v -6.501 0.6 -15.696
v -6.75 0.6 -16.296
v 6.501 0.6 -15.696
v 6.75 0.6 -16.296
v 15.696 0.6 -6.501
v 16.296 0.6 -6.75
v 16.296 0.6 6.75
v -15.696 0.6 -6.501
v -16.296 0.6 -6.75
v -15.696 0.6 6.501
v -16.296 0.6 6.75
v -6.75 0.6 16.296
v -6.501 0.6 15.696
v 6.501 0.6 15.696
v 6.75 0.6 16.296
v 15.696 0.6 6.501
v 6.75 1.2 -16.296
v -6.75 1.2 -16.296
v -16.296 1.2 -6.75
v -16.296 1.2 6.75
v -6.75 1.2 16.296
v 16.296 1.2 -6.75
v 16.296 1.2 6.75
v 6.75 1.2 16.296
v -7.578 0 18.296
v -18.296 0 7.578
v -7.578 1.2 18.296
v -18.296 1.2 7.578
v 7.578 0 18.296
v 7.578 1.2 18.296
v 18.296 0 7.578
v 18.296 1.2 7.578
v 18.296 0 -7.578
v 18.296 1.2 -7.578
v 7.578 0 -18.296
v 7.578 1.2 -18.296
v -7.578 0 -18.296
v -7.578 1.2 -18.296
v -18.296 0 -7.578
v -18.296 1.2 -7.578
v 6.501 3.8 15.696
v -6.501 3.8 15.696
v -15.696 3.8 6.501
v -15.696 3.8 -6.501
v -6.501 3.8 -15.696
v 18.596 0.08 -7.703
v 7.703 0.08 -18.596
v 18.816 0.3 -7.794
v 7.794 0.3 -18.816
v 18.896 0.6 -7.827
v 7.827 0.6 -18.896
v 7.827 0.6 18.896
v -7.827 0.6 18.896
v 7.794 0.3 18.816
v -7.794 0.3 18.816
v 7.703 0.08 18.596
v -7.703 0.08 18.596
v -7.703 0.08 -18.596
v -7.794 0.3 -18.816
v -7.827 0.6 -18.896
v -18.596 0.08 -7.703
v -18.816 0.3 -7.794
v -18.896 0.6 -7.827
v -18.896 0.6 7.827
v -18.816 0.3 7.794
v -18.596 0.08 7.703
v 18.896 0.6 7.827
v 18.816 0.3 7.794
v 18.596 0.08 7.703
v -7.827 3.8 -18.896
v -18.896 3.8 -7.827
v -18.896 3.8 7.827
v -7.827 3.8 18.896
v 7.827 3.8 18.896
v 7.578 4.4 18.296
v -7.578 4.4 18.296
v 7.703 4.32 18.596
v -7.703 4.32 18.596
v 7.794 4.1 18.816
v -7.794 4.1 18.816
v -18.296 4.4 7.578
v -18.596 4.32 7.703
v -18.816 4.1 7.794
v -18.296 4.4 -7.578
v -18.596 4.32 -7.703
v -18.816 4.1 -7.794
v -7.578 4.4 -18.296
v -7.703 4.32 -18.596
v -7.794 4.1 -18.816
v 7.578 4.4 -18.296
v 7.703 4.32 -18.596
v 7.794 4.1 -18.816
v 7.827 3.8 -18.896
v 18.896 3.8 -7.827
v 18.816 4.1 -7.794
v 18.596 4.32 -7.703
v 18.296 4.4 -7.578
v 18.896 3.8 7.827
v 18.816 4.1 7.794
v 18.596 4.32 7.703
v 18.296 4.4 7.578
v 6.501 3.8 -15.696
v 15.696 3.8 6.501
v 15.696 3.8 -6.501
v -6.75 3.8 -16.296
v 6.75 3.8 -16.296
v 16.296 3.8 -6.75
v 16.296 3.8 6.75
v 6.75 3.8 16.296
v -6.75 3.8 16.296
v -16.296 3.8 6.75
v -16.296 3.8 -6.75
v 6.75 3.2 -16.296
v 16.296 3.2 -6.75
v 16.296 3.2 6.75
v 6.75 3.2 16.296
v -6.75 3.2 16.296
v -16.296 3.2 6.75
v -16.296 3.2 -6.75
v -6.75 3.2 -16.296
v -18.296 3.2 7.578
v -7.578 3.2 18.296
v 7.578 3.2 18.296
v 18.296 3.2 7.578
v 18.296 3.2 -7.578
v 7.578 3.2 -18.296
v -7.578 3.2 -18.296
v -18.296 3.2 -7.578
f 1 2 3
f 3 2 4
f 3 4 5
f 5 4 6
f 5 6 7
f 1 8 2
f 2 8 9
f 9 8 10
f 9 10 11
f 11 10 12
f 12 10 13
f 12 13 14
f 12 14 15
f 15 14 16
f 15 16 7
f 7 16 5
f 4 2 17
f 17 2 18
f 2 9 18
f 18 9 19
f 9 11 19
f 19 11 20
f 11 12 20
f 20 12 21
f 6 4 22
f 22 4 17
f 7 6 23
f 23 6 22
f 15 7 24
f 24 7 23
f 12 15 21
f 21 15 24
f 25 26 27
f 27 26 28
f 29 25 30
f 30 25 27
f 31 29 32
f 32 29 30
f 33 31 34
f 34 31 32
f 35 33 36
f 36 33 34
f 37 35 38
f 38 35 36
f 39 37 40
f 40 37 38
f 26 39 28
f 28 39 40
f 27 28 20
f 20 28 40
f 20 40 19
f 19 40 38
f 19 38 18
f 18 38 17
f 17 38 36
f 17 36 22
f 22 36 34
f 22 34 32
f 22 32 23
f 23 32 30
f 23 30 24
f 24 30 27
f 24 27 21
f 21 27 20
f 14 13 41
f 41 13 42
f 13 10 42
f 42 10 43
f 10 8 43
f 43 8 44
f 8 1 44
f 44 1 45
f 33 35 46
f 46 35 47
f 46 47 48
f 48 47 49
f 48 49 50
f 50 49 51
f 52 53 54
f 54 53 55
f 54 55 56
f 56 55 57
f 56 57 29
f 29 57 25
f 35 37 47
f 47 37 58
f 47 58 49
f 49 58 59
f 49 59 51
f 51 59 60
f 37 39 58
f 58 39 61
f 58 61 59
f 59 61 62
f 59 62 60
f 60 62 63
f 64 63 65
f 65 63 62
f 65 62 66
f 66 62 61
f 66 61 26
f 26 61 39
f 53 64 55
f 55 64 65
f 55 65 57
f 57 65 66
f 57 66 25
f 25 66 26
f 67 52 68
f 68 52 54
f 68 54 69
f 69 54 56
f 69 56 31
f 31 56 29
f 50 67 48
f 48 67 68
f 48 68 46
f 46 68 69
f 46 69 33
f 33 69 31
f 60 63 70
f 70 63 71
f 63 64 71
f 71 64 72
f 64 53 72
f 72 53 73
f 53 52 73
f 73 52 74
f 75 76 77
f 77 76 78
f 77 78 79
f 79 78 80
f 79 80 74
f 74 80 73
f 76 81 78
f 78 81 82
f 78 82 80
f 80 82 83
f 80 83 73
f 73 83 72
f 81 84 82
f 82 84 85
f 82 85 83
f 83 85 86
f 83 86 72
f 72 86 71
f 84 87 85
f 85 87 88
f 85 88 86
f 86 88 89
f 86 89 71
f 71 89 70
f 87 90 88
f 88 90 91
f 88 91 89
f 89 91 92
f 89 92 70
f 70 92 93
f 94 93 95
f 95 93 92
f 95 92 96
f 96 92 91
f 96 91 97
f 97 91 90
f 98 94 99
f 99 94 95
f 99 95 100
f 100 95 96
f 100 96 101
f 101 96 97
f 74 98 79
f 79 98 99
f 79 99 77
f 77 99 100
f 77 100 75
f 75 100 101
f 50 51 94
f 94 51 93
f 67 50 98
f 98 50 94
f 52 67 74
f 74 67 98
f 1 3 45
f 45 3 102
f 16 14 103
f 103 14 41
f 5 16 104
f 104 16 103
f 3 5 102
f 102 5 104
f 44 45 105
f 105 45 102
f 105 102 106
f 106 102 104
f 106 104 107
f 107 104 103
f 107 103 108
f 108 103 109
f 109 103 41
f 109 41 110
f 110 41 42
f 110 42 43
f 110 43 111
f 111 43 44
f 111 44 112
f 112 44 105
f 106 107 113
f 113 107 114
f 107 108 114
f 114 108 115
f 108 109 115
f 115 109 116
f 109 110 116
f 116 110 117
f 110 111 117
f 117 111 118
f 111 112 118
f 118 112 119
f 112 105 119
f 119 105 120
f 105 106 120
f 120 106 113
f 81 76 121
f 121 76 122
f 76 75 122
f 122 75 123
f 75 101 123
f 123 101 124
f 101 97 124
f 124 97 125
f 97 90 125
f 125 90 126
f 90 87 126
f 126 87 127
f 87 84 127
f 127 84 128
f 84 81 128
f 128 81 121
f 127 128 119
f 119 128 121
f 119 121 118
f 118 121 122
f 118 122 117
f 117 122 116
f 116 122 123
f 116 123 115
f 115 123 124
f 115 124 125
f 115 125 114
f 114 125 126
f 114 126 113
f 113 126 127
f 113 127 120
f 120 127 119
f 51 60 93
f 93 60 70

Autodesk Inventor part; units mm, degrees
ref_plane "YZ Plane" through (0, 0, 0) normal (1, 0, 0) x (0, 1, 0)
ref_plane "XZ Plane" through (0, 0, 0) normal (0, 1, 0) x (-1, 0, 0)
sketch "스케치1" plane through (0, 0, 0) normal (0, 1, 0) x (-1, 0, 0)
  line L0 (-16.2959, 6.75) -> (-6.75, 16.2959)
  line L1 (-6.75, 16.2959) -> (6.75, 16.2959)
  line L2 (6.75, 16.2959) -> (16.2959, 6.75)
  line L3 (16.2959, 6.75) -> (16.2959, -6.75)
  line L4 (16.2959, -6.75) -> (6.75, -16.2959)
  line L5 (6.75, -16.2959) -> (-6.75, -16.2959)
  line L6 (-6.75, -16.2959) -> (-16.2959, -6.75)
  line L7 (-16.2959, -6.75) -> (-16.2959, 6.75)
  line L8 (18.8959, 7.827) -> (18.8959, -7.827)
  line L9 (18.8959, -7.827) -> (7.827, -18.8959)
  line L10 (7.827, -18.8959) -> (-7.827, -18.8959)
  line L11 (-7.827, -18.8959) -> (-18.8959, -7.827)
  line L12 (-18.8959, -7.827) -> (-18.8959, 7.827)
  line L13 (-18.8959, 7.827) -> (-7.827, 18.8959)
  line L14 (-7.827, 18.8959) -> (7.827, 18.8959)
  line L15 (7.827, 18.8959) -> (18.8959, 7.827)
  point P0 (0, 0)
  point P1 (0, 0)
  point P2 (0, 0)
  dimension "d0" = 13.5
  dimension "d1" = 2.6
extrude "돌출1" add sketch "스케치1" along normal blind 4.4 contours L0 L1 L2 L3 L4 L5 L6 L7 | L8 L9 L10 L11 L12 L13 L14 L15
sketch "스케치14" plane through (0, 4.4, 0) normal (0, 1, 0) x (1, 0, 0)
  line L0 (6.75, -16.2959) -> (-6.75, -16.2959)
  line L1 (-6.75, -16.2959) -> (-16.2959, -6.75)
  line L2 (-16.2959, -6.75) -> (-16.2959, 6.75)
  line L3 (-16.2959, 6.75) -> (-6.75, 16.2959)
  line L4 (-6.75, 16.2959) -> (6.75, 16.2959)
  line L5 (6.75, 16.2959) -> (16.2959, 6.75)
  line L6 (16.2959, 6.75) -> (16.2959, -6.75)
  line L7 (16.2959, -6.75) -> (6.75, -16.2959)
  line L8 (-7.5784, 18.2959) -> (7.5784, 18.2959)
  line L9 (7.5784, 18.2959) -> (18.2959, 7.5784)
  line L10 (18.2959, 7.5784) -> (18.2959, -7.5784)
  line L11 (18.2959, -7.5784) -> (7.5784, -18.2959)
  line L12 (7.5784, -18.2959) -> (-7.5784, -18.2959)
  line L13 (-7.5784, -18.2959) -> (-18.2959, -7.5784)
  line L14 (-18.2959, -7.5784) -> (-18.2959, 7.5784)
  line L15 (-18.2959, 7.5784) -> (-7.5784, 18.2959)
  line L16 (18.8959, -7.827) -> (18.8959, 7.827) projected
  point P0 (0, 0)
  point P1 (0, 0)
  point P2 (0, 0)
  dimension "d138" = 2
  dimension "d139" = 0.6
extrude "돌출16" cut sketch "스케치14" against normal blind 1.2
sketch "스케치15" plane through (0, 4.4, 0) normal (0, 1, 0) x (1, 0, 0)
  line L0 (-16.2959, -6.75) -> (-6.75, -16.2959) projected
  line L1 (-6.75, -16.2959) -> (6.75, -16.2959) projected
  line L2 (6.75, -16.2959) -> (16.2959, -6.75) projected
  line L3 (16.2959, -6.75) -> (16.2959, 6.75) projected
  line L4 (16.2959, 6.75) -> (6.75, 16.2959) projected
  line L5 (6.75, 16.2959) -> (-6.75, 16.2959) projected
  line L6 (-6.75, 16.2959) -> (-16.2959, 6.75) projected
  line L7 (-16.2959, 6.75) -> (-16.2959, -6.75) projected
  point P0 (0, 0)
extrude "돌출17" cut sketch "스케치15" against normal blind 0.6
sketch "스케치16" plane through (0, 3.8, 0) normal (0, 1, 0) x (1, 0, 0)
  line L0 (-6.5015, 15.6959) -> (6.5015, 15.6959)
  line L1 (6.5015, 15.6959) -> (15.6959, 6.5015)
  line L2 (15.6959, 6.5015) -> (15.6959, -6.5015)
  line L3 (15.6959, -6.5015) -> (6.5015, -15.6959)
  line L4 (6.5015, -15.6959) -> (-6.5015, -15.6959)
  line L5 (-6.5015, -15.6959) -> (-15.6959, -6.5015)
  line L6 (-15.6959, -6.5015) -> (-15.6959, 6.5015)
  line L7 (-15.6959, 6.5015) -> (-6.5015, 15.6959)
  line L8 (16.2959, 6.75) -> (16.2959, -6.75) projected
  point P0 (0, 0)
  point P1 (0, 0)
  dimension "d144" = 0.6
extrude "돌출18" cut sketch "스케치16" against normal up to surface (3.8 mm away)
fillet "모깎기2" radius 0.6 16 edges at (0, 4.4, -18.8959) (-13.3614, 4.4, -13.3614) (13.3614, 4.4, -13.3614) (18.8959, 4.4, 0) (13.3614, 4.4, 13.3614) (0, 4.4, 18.8959) (-13.3614, 4.4, 13.3614) (-18.8959, 4.4, 0) (-18.8959, 0, 0) (-13.3614, 0, 13.3614) (0, 0, 18.8959) (13.3614, 0, 13.3614) (-13.3614, 0, -13.3614) (0, 0, -18.8959) (18.8959, 0, 0) (13.3614, 0, -13.3614)
ref_plane "작업 평면3" through (0, 2.2, 0) normal (0, -1, 0) x (1, 0, 0)
mirror "미러6" about plane through (0, 2.2, 0) normal (0, -1, 0) of "돌출17", "돌출16"
properties part number "OV-PAM_ring_2"
